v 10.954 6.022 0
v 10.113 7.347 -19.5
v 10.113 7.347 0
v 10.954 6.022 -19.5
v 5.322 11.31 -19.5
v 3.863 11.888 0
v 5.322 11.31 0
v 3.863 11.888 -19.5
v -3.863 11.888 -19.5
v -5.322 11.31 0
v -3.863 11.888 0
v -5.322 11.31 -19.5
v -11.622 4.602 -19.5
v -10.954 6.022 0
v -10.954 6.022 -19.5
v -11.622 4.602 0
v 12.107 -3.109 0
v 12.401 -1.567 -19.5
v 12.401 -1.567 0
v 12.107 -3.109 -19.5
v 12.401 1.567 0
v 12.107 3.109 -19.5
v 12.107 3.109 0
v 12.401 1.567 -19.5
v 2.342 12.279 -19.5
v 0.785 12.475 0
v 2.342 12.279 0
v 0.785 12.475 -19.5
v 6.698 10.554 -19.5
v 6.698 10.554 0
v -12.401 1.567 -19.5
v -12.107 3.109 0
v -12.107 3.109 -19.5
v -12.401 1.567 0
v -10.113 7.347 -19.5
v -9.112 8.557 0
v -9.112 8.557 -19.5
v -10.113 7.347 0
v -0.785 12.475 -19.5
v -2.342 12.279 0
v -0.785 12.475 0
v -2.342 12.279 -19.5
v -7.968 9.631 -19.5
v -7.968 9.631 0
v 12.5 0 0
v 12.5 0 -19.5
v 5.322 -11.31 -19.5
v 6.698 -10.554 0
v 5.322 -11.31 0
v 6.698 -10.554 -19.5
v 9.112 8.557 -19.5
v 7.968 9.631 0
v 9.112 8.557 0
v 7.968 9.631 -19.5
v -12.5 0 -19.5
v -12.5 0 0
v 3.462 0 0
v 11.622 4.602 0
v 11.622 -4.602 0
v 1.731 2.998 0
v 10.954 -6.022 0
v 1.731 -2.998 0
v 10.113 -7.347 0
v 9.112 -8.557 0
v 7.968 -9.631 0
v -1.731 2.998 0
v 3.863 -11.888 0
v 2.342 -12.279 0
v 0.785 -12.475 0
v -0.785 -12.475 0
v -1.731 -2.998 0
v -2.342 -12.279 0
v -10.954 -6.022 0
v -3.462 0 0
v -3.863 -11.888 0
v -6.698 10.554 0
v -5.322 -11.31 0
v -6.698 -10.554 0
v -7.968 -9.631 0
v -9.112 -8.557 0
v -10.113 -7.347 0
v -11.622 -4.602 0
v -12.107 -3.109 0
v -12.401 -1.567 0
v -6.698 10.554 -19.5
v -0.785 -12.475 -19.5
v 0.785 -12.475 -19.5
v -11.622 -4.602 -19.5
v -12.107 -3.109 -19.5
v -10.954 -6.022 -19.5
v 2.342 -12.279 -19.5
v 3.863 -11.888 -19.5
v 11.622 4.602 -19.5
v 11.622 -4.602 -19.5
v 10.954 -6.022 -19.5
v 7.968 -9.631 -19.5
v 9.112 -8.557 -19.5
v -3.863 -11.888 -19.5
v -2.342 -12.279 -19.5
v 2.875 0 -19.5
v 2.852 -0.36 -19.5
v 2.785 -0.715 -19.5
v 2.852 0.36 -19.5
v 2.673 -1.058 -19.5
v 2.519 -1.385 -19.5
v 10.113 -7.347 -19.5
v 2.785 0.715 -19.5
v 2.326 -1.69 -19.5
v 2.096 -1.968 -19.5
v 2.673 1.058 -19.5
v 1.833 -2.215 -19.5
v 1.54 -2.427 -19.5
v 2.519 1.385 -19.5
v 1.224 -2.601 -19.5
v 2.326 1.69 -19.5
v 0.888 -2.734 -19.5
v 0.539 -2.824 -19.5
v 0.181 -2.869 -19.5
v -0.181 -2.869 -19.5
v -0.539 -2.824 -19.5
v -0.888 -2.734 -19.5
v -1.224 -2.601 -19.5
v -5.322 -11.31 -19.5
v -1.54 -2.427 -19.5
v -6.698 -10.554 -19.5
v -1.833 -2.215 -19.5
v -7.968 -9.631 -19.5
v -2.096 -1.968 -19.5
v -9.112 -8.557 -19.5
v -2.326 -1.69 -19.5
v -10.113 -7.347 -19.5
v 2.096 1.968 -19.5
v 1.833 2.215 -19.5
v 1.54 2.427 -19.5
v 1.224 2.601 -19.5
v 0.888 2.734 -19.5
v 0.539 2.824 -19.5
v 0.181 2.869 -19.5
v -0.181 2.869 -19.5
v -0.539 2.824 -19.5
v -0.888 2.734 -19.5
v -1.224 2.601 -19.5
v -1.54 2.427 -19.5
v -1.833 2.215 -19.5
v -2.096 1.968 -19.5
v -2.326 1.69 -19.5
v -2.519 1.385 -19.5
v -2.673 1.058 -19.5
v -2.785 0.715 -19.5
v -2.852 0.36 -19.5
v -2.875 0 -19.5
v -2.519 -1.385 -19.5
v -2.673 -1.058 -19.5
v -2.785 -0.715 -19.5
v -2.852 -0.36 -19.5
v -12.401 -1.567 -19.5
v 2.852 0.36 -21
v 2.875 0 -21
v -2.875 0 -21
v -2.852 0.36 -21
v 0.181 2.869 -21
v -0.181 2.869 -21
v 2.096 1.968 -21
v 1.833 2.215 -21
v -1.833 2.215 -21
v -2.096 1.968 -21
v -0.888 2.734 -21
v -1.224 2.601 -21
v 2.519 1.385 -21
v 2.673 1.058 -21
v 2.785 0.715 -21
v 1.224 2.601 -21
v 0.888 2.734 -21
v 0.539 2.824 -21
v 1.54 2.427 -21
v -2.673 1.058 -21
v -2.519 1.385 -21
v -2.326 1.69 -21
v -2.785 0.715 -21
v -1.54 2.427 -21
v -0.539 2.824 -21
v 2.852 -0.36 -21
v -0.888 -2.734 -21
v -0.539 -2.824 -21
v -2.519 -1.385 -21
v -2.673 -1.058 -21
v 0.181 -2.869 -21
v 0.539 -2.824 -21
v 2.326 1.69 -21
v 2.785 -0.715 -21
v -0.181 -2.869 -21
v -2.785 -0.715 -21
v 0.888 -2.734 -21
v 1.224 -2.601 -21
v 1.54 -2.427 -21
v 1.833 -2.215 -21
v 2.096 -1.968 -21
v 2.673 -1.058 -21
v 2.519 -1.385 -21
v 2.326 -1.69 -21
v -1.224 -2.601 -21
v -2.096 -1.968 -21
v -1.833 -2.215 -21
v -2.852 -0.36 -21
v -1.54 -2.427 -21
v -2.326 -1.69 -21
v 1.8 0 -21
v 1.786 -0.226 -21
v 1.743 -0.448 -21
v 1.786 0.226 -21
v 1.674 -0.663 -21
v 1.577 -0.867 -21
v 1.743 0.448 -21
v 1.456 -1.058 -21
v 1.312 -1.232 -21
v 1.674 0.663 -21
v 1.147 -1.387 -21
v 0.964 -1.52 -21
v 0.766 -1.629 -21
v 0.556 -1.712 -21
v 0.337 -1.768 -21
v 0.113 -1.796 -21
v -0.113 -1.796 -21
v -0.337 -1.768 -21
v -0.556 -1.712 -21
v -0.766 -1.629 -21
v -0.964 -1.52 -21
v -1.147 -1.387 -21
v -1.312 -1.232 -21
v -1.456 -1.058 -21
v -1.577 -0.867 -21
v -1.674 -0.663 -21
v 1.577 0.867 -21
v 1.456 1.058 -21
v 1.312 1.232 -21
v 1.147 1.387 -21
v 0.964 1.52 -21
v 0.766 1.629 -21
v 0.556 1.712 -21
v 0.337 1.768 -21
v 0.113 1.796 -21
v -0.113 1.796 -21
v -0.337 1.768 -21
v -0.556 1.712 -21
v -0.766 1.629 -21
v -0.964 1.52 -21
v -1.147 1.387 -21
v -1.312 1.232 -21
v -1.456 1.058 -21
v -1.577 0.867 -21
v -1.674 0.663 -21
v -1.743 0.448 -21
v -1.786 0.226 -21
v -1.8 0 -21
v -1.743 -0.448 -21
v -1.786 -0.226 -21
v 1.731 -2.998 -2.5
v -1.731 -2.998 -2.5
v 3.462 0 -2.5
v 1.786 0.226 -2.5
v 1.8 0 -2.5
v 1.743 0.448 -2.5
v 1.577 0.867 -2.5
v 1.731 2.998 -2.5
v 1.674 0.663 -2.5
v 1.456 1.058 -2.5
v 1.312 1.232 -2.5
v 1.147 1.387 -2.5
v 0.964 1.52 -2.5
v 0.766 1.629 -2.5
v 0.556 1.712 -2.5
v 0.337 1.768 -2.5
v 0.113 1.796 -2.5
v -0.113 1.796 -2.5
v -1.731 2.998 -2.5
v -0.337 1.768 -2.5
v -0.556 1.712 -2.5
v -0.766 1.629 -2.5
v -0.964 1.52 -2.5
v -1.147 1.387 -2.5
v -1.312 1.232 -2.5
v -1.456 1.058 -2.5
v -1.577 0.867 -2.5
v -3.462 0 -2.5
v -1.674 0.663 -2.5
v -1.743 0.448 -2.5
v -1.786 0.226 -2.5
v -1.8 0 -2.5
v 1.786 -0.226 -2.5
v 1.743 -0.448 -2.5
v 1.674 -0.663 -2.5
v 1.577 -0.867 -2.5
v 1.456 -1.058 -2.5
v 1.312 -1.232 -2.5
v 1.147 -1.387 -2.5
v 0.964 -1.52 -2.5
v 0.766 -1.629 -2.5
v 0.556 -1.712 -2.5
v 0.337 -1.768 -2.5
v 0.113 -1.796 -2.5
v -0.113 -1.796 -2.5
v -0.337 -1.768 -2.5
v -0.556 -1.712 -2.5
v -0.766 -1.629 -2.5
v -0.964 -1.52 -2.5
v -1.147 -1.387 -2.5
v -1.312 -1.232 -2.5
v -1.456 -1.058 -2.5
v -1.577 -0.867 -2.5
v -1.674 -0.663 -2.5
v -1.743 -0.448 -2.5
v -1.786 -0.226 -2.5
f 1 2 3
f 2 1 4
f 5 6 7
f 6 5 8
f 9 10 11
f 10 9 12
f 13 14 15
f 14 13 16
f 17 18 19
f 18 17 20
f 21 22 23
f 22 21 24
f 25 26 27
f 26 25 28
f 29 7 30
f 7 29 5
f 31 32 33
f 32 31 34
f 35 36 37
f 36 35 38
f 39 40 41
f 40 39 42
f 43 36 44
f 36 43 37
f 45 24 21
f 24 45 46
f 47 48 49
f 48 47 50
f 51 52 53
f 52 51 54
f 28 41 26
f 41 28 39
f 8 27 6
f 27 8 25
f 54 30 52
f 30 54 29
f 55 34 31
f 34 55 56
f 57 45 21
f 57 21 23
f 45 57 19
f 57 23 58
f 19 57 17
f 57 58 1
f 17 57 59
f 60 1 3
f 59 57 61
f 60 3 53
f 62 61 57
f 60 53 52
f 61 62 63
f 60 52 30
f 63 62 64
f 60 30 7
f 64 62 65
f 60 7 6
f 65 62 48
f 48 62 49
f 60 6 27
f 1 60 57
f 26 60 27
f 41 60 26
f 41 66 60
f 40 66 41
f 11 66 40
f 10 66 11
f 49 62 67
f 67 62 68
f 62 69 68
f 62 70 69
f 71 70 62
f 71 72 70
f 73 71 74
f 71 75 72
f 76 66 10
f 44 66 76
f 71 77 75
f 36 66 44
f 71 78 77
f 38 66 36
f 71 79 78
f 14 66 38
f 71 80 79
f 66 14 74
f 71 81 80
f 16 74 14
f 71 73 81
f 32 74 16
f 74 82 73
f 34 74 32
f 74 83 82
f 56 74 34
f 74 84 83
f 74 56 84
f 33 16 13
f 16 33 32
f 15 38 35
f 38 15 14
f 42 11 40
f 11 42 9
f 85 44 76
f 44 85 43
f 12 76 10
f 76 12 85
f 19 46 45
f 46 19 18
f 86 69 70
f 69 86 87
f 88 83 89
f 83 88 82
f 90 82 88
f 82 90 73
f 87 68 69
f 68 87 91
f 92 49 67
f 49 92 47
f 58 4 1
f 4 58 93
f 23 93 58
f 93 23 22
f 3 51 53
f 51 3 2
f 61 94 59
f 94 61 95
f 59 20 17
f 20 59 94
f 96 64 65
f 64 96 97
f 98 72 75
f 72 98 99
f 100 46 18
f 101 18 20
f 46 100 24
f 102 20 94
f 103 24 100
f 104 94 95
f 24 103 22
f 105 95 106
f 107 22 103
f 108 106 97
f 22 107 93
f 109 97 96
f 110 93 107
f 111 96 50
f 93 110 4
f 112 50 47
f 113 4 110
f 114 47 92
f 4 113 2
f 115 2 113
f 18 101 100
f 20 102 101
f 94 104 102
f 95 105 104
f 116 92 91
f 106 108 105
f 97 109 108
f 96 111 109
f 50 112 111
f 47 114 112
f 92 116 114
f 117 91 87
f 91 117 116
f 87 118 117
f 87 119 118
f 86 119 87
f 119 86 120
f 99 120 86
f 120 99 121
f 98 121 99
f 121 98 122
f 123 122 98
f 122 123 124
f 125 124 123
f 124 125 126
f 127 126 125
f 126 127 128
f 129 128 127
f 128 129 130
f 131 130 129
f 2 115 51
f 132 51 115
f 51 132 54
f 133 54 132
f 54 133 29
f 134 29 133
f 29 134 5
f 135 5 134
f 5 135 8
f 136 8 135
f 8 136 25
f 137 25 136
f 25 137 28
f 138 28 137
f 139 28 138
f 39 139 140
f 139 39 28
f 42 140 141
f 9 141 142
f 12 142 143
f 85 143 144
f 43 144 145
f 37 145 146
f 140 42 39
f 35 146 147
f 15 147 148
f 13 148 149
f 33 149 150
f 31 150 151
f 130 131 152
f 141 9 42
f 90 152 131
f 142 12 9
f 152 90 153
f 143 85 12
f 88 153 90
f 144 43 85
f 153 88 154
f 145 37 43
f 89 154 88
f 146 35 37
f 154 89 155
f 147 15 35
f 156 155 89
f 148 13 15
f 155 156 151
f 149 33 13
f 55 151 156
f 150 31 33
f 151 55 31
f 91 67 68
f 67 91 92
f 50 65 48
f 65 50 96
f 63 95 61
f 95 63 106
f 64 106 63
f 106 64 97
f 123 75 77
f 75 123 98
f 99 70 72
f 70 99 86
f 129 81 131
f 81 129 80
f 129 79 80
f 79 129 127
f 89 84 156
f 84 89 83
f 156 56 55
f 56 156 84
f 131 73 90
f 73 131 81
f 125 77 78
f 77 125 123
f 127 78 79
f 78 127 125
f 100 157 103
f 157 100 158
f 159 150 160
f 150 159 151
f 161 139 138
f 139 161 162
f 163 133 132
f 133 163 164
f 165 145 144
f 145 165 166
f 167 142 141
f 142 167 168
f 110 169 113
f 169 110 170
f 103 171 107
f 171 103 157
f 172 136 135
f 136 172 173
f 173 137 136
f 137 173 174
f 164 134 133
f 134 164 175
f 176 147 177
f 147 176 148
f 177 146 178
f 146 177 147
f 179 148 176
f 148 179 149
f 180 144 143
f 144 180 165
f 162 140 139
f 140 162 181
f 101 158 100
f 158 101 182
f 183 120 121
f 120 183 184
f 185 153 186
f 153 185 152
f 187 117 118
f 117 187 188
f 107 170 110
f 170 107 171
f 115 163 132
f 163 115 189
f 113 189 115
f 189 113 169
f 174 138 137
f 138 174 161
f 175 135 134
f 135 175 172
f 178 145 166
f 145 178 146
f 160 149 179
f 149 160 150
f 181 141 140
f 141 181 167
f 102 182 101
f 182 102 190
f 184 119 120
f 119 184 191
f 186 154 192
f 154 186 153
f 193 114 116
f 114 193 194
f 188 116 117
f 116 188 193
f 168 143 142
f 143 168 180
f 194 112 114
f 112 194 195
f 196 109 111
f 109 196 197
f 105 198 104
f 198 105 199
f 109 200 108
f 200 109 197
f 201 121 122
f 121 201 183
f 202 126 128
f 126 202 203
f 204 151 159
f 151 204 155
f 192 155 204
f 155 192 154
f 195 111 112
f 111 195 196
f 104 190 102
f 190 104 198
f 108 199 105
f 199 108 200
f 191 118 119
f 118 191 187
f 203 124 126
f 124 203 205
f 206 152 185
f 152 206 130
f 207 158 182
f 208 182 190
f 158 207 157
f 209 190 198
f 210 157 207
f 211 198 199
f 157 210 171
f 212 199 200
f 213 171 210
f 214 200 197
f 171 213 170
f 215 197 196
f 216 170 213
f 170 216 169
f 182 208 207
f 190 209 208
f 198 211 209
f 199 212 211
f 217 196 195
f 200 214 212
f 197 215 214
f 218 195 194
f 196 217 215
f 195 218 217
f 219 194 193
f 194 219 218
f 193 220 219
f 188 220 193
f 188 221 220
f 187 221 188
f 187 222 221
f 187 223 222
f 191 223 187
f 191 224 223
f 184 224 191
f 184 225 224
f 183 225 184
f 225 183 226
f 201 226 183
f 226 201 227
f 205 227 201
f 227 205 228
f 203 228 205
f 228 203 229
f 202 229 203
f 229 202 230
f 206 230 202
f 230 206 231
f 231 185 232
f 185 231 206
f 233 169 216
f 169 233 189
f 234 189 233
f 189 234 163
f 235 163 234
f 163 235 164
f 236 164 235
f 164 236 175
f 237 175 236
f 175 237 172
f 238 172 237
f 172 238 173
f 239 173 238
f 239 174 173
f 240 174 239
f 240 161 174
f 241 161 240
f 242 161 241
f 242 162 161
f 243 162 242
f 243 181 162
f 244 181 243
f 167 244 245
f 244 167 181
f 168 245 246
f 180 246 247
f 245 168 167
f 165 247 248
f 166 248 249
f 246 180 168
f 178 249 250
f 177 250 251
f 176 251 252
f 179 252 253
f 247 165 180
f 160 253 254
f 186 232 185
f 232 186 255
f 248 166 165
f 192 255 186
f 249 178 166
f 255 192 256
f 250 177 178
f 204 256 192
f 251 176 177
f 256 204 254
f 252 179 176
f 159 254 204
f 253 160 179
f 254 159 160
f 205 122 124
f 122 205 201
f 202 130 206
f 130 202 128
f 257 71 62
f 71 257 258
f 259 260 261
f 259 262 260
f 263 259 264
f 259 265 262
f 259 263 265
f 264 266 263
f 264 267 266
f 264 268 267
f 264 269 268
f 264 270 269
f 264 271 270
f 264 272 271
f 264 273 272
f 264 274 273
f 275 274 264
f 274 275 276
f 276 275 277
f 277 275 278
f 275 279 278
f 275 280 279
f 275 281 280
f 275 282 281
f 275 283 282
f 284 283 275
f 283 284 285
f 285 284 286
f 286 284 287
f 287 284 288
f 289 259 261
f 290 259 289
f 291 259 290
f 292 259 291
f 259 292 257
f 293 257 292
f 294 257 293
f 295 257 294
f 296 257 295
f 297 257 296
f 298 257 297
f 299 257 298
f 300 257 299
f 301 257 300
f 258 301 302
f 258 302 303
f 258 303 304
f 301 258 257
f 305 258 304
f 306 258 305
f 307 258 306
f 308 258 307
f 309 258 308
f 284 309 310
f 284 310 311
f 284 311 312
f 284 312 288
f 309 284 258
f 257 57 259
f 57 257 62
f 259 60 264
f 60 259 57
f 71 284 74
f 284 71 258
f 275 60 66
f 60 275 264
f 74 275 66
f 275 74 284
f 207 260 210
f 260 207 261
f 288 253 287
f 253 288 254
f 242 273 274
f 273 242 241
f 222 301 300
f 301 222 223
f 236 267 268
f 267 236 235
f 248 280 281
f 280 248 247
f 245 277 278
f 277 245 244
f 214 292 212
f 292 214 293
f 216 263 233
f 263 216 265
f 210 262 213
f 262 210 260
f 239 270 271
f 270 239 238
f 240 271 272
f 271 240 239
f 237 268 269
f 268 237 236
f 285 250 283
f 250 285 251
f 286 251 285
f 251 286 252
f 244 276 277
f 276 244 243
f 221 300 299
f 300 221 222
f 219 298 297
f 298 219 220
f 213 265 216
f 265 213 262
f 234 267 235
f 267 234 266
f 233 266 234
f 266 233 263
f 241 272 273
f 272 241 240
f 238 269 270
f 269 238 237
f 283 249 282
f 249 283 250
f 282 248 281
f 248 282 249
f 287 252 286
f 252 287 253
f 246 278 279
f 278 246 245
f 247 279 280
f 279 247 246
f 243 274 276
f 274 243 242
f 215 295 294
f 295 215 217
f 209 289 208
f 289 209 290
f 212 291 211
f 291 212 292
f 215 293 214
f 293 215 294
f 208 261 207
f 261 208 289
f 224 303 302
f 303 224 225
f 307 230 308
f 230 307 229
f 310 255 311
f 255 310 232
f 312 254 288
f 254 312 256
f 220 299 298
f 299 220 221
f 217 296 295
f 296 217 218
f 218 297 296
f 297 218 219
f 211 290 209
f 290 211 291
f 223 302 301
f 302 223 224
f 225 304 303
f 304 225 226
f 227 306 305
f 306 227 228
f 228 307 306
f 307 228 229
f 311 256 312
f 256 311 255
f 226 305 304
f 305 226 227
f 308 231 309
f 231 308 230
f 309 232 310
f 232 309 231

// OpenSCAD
$fn = 50;


difference() {
	union() {
		translate(v = [0, 0, -19.5000000000]) {
			cylinder(h = 19.5000000000, r = 12.5000000000);
		}
		#translate(v = [0, 0, -21.0000000000]) {
			cylinder(h = 21, r = 2.8750000000);
		}
	}
	union() {
		translate(v = [0, 0, 0]) {
			rotate(a = [0, 0, 0]) {
				difference() {
					union() {
						translate(v = [0, 0, -2.5000000000]) {
							linear_extrude(height = 2.5000000000) {
								polygon(points = [[3.4620000000, 0.0000000000], [1.7310000000, 2.9981799479], [-1.7310000000, 2.9981799479], [-3.4620000000, 0.0000000000], [-1.7310000000, -2.9981799479], [1.7310000000, -2.9981799479]]);
							}
						}
					}
					union();
				}
			}
		}
		#translate(v = [0, 0, -100.0000000000]) {
			cylinder(h = 200, r = 1.8000000000);
		}
	}
}
